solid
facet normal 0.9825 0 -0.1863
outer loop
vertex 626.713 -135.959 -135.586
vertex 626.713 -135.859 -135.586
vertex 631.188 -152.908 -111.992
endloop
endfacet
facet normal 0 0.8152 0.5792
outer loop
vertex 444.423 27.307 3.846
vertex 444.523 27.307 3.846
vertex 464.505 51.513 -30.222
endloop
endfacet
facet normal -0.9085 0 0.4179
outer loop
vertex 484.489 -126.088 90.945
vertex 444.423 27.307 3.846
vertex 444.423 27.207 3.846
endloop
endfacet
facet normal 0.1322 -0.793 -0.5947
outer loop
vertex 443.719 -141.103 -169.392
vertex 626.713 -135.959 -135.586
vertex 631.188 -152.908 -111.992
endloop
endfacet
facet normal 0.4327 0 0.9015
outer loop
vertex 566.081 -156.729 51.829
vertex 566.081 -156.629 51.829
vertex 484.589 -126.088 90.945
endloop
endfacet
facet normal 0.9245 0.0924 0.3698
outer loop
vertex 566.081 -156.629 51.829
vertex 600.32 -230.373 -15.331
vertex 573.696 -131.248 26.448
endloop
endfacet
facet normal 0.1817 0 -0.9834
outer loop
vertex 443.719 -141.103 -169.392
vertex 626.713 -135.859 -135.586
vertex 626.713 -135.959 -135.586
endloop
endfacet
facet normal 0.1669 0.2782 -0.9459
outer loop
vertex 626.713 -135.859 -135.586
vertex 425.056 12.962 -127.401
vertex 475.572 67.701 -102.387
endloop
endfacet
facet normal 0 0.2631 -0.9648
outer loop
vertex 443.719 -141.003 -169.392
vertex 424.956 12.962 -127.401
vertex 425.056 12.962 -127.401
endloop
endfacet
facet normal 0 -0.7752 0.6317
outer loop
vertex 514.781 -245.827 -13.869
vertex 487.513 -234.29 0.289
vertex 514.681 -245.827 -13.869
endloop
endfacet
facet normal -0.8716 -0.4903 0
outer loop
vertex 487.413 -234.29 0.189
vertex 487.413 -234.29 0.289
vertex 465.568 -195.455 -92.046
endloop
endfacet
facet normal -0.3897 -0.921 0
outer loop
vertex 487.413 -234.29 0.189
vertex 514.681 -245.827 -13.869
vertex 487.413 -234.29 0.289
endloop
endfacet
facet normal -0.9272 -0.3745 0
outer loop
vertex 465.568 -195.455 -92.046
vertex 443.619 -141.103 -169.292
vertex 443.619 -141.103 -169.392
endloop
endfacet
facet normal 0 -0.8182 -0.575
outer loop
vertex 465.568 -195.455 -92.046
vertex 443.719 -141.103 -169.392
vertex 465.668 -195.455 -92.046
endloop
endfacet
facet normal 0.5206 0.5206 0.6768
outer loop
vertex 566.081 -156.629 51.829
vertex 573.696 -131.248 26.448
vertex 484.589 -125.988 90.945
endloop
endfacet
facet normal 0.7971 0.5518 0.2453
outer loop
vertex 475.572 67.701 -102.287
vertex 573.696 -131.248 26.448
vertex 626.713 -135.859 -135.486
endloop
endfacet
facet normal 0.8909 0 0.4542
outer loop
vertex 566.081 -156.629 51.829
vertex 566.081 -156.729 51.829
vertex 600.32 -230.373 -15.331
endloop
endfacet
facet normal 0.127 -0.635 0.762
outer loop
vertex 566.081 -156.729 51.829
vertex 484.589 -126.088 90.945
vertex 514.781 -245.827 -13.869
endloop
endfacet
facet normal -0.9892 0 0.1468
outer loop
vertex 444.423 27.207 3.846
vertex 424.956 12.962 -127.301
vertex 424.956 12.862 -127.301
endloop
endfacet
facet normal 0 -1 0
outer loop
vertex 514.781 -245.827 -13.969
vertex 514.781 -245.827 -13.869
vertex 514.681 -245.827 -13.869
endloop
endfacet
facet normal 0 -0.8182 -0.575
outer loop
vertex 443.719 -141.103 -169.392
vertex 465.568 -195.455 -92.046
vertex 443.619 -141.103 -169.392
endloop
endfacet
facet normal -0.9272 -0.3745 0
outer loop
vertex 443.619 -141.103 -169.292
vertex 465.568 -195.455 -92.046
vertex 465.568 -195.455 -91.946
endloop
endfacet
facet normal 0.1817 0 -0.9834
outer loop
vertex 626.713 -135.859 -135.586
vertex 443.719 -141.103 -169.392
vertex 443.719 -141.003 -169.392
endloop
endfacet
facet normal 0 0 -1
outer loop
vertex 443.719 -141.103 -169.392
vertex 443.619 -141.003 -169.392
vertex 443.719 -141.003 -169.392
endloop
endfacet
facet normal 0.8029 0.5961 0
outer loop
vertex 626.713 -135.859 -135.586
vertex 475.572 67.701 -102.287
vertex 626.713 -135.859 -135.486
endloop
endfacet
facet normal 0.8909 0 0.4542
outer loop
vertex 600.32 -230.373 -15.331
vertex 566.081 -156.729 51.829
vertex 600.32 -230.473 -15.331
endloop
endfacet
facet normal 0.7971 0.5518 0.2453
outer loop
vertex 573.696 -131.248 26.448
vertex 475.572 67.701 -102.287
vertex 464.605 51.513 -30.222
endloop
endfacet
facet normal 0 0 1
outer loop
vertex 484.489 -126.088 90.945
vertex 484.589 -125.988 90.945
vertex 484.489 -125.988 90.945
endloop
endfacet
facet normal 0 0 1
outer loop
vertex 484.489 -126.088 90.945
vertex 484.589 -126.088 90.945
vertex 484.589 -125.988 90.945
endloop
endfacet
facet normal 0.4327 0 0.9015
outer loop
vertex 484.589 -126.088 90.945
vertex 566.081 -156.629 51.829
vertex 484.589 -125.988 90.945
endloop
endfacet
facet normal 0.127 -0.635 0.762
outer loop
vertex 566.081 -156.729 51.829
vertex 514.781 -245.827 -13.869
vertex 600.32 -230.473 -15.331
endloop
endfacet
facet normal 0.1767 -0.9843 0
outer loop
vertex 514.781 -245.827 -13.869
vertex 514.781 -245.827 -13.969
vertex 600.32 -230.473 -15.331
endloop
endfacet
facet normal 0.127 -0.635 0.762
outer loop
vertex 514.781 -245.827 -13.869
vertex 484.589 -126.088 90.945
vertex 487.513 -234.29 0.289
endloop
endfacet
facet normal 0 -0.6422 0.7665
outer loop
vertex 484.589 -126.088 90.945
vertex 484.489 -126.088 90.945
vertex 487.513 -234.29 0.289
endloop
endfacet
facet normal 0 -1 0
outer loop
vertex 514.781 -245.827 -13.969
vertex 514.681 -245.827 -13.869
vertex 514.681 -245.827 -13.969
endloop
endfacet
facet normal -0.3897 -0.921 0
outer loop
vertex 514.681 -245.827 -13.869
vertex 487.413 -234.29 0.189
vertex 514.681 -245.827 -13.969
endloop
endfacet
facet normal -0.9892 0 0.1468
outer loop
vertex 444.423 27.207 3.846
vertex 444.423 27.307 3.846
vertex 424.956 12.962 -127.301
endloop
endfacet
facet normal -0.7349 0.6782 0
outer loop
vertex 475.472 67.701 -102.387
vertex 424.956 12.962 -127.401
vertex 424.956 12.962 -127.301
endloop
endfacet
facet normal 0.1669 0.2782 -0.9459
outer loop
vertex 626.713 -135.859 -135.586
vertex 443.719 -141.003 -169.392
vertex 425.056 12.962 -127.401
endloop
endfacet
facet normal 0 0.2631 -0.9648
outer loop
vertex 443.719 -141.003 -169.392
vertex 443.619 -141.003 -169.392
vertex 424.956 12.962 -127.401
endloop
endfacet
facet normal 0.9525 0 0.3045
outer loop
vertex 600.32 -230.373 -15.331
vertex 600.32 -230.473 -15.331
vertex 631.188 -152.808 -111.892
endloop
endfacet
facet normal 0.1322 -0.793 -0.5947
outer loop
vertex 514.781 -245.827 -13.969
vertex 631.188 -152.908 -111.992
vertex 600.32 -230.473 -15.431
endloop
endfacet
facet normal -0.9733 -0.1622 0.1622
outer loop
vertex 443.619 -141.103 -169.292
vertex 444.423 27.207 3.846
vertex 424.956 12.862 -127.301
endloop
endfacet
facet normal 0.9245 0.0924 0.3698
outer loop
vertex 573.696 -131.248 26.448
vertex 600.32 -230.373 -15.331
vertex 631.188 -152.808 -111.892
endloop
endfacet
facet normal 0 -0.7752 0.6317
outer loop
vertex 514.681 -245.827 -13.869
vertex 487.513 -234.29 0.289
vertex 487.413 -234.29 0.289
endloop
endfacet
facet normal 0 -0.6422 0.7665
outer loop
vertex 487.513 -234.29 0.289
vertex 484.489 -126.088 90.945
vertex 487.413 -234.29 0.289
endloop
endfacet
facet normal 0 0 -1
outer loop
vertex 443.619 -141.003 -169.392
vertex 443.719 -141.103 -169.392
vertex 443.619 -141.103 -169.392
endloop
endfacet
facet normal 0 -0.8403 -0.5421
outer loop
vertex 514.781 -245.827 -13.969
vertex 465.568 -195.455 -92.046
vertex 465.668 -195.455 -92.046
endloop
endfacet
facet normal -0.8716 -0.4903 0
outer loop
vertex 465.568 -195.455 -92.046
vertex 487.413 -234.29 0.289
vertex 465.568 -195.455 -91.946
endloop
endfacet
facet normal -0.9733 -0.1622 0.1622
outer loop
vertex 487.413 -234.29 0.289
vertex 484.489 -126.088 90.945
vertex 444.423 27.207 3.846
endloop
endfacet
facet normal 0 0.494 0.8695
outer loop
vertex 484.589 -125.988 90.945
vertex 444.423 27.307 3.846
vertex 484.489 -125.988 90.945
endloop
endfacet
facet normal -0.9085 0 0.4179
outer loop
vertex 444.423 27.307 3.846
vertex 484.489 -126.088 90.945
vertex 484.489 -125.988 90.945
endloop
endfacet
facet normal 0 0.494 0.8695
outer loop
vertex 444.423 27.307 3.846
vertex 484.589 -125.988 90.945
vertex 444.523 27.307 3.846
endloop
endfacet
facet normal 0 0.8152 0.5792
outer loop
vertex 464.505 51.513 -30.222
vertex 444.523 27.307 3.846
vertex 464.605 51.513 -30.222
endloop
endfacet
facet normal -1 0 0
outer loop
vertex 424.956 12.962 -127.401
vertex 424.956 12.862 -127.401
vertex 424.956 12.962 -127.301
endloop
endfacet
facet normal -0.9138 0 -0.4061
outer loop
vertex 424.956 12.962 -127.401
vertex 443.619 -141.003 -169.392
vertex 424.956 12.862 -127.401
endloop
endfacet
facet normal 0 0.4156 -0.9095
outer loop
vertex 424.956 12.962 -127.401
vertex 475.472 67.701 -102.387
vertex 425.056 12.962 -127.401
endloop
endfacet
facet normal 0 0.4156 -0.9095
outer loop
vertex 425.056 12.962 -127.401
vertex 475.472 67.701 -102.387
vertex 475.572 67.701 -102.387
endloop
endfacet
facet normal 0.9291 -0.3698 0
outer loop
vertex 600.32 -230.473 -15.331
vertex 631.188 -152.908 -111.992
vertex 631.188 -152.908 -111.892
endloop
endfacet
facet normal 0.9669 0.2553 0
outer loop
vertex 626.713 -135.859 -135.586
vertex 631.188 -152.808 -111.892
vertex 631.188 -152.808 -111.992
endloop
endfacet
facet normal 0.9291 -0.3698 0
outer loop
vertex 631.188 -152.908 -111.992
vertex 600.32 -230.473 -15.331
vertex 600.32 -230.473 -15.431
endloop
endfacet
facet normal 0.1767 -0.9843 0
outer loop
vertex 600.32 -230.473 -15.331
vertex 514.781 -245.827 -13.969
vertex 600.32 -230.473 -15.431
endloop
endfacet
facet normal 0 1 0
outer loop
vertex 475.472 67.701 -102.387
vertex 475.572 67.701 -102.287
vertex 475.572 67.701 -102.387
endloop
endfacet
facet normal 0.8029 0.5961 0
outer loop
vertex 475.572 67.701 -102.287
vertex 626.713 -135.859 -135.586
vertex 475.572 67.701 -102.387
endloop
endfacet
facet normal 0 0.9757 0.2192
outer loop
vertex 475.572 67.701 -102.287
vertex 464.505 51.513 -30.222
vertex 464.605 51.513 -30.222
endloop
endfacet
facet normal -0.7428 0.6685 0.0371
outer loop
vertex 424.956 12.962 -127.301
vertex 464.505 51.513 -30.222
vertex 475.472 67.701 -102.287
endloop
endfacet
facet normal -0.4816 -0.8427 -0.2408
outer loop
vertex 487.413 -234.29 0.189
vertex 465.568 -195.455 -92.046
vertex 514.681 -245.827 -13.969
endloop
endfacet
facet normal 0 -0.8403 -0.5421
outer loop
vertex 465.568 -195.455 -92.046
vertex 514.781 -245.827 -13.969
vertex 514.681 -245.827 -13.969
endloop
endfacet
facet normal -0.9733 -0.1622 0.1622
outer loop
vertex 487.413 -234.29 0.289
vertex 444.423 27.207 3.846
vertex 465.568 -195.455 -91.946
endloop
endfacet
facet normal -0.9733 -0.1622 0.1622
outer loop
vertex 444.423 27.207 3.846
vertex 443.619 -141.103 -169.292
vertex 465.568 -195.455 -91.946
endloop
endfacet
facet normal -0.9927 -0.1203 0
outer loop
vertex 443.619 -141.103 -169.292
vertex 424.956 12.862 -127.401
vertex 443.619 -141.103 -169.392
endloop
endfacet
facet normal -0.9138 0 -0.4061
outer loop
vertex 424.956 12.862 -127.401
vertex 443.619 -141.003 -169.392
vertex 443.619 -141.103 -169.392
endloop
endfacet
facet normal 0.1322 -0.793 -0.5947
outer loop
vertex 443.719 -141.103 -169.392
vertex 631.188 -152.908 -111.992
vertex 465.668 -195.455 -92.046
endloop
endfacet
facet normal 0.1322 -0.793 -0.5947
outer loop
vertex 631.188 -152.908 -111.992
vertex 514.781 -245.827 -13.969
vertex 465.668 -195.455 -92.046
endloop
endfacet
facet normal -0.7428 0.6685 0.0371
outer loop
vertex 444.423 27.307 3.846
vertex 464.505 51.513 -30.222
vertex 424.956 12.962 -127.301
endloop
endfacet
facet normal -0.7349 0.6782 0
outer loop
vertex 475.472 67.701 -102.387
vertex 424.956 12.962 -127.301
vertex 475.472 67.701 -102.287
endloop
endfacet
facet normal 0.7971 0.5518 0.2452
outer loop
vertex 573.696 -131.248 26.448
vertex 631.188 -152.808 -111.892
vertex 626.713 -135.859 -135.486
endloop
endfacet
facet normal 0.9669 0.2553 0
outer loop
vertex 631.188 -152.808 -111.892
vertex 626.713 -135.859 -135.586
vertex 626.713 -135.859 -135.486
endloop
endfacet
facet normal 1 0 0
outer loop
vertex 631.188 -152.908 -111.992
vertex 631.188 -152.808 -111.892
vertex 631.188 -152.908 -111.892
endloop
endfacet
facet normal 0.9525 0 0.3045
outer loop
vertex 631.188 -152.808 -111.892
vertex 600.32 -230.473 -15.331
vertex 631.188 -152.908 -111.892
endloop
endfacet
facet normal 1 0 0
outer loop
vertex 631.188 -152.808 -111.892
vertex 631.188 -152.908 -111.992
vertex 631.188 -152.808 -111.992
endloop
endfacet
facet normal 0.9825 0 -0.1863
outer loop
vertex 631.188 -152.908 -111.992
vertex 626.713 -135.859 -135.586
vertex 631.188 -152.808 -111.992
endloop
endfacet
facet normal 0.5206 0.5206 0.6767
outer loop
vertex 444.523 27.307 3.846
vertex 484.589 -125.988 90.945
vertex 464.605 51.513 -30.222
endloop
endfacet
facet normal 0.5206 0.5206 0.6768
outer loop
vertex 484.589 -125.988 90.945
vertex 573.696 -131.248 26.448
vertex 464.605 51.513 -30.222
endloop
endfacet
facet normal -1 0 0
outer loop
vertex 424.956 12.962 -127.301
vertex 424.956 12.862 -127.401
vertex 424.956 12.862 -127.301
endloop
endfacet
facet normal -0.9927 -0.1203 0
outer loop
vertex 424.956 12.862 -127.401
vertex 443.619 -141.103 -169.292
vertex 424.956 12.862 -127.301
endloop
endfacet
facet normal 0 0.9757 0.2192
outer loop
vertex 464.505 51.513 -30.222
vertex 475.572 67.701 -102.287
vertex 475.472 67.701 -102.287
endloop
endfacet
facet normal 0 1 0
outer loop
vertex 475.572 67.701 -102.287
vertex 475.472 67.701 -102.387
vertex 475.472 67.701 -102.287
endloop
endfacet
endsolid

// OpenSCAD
hull(){ translate([565.981308411,-156.728971963,51.7289719626])cube(0.1,0.1,0.1);
translate([464.505494505,51.4128728414,-30.3218210361])cube(0.1,0.1,0.1);
translate([475.471918877,67.6014040562,-102.386895476])cube(0.1,0.1,0.1);
translate([573.595505618,-131.348314607,26.3483146067])cube(0.1,0.1,0.1);
translate([444.423269809,27.2066198596,3.74623871615])cube(0.1,0.1,0.1);
translate([484.488859764,-126.087811271,90.8453473132])cube(0.1,0.1,0.1);
translate([487.413249211,-234.29022082,0.18927444795])cube(0.1,0.1,0.1);
translate([424.956076135,12.8623718887,-127.401171303])cube(0.1,0.1,0.1);
translate([600.21978022,-230.473372781,-15.4311073542])cube(0.1,0.1,0.1);
translate([514.680851064,-245.826513912,-13.968903437])cube(0.1,0.1,0.1);
translate([626.613088404,-135.958668197,-135.585533869])cube(0.1,0.1,0.1);
translate([631.087680355,-152.907880133,-111.992230855])cube(0.1,0.1,0.1);
translate([465.568181818,-195.454545455,-92.0454545455])cube(0.1,0.1,0.1);
translate([443.618556701,-141.103092784,-169.391752577])cube(0.1,0.1,0.1); }
